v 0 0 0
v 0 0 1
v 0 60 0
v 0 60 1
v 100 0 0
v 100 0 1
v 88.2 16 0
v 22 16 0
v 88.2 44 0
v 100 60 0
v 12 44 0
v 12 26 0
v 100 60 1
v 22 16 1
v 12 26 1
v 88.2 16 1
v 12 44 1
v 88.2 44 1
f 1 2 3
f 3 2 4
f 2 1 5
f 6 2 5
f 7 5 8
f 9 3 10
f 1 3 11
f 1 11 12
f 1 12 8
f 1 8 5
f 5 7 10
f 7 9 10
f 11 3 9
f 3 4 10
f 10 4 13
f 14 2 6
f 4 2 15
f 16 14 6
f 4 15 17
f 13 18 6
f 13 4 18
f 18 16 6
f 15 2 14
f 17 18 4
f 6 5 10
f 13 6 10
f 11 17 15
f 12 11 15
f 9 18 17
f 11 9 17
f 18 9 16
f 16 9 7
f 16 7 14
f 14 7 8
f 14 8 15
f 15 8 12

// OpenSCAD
// Holder for Ormerod sensor board

module wedge(x,y,z)
{
	polyhedron(
		points=[[0,0,0],[x,0,0],[0,y,0],[0,0,z],[x,0,z],[0,y,z]],
		triangles=[[0,2,1],[3,4,5],[0,1,3],[1,4,3],[1,2,4],[2,5,4],[0,3,2],[5,2,3]]
	);
}

//wedge(10,10,3);

difference()
{
	cube([100,60,1]);
	translate([12,16,-1])
	{
		difference()
		{	
			cube([76.2,28,3]);
			translate([0,0,-1]) wedge(10,10,5);
		}
	}
}
